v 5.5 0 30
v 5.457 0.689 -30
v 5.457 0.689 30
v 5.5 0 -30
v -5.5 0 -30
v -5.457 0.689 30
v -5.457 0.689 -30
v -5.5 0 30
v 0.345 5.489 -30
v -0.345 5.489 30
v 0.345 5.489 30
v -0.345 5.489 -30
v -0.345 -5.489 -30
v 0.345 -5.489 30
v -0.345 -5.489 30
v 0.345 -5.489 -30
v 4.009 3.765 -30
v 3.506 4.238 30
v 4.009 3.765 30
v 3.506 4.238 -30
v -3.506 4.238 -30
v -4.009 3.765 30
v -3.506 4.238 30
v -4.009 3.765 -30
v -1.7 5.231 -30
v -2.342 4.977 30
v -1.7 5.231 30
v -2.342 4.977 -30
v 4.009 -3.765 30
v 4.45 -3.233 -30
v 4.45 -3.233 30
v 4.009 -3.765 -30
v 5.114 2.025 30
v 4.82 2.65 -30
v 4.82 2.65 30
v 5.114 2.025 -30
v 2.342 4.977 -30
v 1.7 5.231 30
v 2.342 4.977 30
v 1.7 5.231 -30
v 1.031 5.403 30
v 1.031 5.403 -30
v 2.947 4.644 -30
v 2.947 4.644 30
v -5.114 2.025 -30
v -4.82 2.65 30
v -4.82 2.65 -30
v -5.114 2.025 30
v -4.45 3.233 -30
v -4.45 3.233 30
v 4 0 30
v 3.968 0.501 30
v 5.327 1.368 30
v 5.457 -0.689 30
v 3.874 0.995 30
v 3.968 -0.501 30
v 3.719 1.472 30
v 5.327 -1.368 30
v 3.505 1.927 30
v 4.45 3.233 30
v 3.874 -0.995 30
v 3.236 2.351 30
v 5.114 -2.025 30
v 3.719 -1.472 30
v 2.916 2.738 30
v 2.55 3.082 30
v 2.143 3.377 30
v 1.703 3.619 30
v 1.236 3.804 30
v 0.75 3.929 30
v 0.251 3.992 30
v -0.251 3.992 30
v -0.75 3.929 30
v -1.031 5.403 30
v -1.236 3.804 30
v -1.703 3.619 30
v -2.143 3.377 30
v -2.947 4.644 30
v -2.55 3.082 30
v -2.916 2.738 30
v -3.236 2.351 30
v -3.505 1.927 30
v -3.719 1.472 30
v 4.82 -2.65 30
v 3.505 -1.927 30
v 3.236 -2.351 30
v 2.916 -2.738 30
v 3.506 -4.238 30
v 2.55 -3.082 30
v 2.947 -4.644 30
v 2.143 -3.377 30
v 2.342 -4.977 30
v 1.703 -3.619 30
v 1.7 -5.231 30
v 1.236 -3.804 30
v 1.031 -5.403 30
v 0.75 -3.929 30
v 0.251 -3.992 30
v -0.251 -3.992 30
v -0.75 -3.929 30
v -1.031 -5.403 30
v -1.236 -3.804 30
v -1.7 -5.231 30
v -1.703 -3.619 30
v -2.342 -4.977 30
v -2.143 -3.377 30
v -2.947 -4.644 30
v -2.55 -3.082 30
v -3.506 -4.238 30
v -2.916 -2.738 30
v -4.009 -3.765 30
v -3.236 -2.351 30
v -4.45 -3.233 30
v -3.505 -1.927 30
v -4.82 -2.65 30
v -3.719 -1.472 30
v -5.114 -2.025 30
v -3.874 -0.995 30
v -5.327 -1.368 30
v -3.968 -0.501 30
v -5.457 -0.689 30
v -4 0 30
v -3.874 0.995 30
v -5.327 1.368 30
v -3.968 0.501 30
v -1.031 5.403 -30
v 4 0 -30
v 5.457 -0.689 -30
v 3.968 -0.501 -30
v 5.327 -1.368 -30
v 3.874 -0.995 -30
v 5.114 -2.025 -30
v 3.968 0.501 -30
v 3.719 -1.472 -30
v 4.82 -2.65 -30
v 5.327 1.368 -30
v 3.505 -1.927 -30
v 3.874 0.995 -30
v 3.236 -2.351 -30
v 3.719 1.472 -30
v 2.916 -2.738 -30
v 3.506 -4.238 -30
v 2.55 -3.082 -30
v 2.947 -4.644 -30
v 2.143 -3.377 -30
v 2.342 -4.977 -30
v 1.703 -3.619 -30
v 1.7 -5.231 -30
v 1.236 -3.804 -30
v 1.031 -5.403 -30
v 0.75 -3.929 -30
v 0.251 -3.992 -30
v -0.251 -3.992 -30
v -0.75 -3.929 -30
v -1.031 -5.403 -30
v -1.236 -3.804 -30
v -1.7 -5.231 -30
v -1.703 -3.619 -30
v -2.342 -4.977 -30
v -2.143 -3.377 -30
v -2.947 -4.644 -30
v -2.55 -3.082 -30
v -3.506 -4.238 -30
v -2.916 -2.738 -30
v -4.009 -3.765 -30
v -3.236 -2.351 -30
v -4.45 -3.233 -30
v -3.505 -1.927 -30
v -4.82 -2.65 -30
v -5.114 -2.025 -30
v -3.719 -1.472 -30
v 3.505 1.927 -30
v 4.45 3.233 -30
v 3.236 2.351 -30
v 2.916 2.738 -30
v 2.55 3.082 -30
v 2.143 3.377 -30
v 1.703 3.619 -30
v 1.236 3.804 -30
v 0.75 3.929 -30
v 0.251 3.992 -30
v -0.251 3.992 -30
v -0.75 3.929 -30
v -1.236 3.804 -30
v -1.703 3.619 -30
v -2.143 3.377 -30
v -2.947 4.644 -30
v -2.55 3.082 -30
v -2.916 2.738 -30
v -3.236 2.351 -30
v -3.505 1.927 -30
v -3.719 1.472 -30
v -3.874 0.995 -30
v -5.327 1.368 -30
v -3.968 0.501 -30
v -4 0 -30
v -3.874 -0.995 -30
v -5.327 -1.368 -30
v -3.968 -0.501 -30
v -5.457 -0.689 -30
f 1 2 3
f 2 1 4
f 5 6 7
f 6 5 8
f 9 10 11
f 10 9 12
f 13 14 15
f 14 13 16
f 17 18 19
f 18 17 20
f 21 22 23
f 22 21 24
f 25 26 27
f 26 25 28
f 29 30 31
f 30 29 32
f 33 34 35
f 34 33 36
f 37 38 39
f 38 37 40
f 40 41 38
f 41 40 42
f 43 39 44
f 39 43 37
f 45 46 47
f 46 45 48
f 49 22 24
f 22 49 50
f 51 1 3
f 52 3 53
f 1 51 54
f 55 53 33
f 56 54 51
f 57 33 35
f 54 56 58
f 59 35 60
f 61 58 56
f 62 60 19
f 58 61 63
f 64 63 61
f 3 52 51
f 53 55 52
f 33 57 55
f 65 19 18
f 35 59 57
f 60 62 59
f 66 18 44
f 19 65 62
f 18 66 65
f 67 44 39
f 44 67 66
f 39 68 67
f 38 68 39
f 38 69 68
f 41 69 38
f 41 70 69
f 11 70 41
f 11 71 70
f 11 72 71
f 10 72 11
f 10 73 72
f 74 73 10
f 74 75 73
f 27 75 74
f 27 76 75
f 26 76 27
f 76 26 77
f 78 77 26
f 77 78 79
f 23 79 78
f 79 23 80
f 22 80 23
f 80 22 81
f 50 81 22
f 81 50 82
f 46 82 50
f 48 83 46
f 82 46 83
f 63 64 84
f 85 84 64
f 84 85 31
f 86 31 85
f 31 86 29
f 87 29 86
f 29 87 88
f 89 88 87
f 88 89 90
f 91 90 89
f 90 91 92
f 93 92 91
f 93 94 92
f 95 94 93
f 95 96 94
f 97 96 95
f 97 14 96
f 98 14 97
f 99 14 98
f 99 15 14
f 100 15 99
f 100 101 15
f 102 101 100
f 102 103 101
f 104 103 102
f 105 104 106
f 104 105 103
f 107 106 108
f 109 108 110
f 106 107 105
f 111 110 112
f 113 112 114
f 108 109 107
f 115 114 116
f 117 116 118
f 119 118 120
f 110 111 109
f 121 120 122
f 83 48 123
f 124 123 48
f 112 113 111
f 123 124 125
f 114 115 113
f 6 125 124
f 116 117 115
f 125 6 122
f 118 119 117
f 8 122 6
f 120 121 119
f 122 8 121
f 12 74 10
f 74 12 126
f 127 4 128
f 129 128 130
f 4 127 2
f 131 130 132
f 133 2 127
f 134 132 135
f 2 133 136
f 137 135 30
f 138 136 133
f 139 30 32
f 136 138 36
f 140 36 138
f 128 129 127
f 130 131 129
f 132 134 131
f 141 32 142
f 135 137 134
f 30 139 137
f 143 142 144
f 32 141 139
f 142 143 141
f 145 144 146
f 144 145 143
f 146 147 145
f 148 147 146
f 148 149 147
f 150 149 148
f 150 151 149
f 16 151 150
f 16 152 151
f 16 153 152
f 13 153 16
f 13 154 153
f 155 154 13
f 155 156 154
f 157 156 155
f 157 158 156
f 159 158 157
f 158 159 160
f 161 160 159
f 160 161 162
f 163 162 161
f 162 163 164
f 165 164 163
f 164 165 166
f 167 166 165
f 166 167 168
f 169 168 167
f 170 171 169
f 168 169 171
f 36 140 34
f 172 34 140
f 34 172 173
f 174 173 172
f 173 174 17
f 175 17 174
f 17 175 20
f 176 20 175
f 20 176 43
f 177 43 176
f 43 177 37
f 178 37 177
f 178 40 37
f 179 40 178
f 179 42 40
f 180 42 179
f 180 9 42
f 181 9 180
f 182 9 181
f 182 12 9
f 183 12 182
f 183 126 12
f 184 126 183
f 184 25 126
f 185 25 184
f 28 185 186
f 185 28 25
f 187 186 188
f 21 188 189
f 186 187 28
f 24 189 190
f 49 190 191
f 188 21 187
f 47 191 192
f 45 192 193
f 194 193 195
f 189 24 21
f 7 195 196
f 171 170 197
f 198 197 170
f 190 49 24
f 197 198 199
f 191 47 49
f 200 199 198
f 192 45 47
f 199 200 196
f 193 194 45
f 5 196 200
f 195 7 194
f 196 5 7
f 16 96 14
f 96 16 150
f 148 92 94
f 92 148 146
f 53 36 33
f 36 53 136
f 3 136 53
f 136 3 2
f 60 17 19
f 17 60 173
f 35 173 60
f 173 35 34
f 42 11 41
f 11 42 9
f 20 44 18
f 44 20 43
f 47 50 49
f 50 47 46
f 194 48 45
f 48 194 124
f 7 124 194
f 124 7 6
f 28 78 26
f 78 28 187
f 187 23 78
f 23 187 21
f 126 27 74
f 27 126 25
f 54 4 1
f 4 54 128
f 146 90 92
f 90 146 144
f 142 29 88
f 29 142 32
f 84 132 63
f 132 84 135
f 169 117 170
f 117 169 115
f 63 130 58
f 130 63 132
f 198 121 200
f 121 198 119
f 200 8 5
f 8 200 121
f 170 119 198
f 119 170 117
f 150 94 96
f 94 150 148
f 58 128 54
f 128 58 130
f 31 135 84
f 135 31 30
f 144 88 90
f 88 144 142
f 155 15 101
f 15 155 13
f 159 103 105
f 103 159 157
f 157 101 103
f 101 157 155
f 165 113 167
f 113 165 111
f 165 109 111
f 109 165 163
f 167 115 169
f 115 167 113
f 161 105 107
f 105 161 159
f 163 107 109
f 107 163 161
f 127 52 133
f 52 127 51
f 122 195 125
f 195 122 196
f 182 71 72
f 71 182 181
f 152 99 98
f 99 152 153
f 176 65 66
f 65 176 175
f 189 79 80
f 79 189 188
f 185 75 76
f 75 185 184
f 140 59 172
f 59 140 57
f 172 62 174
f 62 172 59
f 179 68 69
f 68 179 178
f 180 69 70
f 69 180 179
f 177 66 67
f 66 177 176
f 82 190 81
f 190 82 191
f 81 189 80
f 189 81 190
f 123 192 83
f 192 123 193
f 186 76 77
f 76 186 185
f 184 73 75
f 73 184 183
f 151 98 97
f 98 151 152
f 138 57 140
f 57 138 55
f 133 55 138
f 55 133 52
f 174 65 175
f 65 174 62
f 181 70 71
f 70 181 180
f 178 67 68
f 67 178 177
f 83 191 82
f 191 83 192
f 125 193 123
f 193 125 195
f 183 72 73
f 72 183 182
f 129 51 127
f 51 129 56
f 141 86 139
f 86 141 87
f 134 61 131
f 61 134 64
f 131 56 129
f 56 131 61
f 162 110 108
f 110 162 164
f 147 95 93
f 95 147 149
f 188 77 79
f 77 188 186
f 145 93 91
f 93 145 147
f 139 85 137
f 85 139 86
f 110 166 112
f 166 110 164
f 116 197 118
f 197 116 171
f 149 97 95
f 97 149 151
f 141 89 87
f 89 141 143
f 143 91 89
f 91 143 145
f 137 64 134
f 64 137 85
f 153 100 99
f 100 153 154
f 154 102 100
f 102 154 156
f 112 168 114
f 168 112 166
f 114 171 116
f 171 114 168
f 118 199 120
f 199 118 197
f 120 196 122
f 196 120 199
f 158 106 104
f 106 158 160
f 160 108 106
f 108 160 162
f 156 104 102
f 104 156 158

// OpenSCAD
$fn = 50;


difference() {
	union() {
		translate(v = [0, 0, -30.0000000000]) {
			cylinder(h = 60, r = 5.5000000000);
		}
	}
	union() {
		translate(v = [0, 0, -100.0000000000]) {
			cylinder(h = 200, r = 4.0000000000);
		}
	}
}
